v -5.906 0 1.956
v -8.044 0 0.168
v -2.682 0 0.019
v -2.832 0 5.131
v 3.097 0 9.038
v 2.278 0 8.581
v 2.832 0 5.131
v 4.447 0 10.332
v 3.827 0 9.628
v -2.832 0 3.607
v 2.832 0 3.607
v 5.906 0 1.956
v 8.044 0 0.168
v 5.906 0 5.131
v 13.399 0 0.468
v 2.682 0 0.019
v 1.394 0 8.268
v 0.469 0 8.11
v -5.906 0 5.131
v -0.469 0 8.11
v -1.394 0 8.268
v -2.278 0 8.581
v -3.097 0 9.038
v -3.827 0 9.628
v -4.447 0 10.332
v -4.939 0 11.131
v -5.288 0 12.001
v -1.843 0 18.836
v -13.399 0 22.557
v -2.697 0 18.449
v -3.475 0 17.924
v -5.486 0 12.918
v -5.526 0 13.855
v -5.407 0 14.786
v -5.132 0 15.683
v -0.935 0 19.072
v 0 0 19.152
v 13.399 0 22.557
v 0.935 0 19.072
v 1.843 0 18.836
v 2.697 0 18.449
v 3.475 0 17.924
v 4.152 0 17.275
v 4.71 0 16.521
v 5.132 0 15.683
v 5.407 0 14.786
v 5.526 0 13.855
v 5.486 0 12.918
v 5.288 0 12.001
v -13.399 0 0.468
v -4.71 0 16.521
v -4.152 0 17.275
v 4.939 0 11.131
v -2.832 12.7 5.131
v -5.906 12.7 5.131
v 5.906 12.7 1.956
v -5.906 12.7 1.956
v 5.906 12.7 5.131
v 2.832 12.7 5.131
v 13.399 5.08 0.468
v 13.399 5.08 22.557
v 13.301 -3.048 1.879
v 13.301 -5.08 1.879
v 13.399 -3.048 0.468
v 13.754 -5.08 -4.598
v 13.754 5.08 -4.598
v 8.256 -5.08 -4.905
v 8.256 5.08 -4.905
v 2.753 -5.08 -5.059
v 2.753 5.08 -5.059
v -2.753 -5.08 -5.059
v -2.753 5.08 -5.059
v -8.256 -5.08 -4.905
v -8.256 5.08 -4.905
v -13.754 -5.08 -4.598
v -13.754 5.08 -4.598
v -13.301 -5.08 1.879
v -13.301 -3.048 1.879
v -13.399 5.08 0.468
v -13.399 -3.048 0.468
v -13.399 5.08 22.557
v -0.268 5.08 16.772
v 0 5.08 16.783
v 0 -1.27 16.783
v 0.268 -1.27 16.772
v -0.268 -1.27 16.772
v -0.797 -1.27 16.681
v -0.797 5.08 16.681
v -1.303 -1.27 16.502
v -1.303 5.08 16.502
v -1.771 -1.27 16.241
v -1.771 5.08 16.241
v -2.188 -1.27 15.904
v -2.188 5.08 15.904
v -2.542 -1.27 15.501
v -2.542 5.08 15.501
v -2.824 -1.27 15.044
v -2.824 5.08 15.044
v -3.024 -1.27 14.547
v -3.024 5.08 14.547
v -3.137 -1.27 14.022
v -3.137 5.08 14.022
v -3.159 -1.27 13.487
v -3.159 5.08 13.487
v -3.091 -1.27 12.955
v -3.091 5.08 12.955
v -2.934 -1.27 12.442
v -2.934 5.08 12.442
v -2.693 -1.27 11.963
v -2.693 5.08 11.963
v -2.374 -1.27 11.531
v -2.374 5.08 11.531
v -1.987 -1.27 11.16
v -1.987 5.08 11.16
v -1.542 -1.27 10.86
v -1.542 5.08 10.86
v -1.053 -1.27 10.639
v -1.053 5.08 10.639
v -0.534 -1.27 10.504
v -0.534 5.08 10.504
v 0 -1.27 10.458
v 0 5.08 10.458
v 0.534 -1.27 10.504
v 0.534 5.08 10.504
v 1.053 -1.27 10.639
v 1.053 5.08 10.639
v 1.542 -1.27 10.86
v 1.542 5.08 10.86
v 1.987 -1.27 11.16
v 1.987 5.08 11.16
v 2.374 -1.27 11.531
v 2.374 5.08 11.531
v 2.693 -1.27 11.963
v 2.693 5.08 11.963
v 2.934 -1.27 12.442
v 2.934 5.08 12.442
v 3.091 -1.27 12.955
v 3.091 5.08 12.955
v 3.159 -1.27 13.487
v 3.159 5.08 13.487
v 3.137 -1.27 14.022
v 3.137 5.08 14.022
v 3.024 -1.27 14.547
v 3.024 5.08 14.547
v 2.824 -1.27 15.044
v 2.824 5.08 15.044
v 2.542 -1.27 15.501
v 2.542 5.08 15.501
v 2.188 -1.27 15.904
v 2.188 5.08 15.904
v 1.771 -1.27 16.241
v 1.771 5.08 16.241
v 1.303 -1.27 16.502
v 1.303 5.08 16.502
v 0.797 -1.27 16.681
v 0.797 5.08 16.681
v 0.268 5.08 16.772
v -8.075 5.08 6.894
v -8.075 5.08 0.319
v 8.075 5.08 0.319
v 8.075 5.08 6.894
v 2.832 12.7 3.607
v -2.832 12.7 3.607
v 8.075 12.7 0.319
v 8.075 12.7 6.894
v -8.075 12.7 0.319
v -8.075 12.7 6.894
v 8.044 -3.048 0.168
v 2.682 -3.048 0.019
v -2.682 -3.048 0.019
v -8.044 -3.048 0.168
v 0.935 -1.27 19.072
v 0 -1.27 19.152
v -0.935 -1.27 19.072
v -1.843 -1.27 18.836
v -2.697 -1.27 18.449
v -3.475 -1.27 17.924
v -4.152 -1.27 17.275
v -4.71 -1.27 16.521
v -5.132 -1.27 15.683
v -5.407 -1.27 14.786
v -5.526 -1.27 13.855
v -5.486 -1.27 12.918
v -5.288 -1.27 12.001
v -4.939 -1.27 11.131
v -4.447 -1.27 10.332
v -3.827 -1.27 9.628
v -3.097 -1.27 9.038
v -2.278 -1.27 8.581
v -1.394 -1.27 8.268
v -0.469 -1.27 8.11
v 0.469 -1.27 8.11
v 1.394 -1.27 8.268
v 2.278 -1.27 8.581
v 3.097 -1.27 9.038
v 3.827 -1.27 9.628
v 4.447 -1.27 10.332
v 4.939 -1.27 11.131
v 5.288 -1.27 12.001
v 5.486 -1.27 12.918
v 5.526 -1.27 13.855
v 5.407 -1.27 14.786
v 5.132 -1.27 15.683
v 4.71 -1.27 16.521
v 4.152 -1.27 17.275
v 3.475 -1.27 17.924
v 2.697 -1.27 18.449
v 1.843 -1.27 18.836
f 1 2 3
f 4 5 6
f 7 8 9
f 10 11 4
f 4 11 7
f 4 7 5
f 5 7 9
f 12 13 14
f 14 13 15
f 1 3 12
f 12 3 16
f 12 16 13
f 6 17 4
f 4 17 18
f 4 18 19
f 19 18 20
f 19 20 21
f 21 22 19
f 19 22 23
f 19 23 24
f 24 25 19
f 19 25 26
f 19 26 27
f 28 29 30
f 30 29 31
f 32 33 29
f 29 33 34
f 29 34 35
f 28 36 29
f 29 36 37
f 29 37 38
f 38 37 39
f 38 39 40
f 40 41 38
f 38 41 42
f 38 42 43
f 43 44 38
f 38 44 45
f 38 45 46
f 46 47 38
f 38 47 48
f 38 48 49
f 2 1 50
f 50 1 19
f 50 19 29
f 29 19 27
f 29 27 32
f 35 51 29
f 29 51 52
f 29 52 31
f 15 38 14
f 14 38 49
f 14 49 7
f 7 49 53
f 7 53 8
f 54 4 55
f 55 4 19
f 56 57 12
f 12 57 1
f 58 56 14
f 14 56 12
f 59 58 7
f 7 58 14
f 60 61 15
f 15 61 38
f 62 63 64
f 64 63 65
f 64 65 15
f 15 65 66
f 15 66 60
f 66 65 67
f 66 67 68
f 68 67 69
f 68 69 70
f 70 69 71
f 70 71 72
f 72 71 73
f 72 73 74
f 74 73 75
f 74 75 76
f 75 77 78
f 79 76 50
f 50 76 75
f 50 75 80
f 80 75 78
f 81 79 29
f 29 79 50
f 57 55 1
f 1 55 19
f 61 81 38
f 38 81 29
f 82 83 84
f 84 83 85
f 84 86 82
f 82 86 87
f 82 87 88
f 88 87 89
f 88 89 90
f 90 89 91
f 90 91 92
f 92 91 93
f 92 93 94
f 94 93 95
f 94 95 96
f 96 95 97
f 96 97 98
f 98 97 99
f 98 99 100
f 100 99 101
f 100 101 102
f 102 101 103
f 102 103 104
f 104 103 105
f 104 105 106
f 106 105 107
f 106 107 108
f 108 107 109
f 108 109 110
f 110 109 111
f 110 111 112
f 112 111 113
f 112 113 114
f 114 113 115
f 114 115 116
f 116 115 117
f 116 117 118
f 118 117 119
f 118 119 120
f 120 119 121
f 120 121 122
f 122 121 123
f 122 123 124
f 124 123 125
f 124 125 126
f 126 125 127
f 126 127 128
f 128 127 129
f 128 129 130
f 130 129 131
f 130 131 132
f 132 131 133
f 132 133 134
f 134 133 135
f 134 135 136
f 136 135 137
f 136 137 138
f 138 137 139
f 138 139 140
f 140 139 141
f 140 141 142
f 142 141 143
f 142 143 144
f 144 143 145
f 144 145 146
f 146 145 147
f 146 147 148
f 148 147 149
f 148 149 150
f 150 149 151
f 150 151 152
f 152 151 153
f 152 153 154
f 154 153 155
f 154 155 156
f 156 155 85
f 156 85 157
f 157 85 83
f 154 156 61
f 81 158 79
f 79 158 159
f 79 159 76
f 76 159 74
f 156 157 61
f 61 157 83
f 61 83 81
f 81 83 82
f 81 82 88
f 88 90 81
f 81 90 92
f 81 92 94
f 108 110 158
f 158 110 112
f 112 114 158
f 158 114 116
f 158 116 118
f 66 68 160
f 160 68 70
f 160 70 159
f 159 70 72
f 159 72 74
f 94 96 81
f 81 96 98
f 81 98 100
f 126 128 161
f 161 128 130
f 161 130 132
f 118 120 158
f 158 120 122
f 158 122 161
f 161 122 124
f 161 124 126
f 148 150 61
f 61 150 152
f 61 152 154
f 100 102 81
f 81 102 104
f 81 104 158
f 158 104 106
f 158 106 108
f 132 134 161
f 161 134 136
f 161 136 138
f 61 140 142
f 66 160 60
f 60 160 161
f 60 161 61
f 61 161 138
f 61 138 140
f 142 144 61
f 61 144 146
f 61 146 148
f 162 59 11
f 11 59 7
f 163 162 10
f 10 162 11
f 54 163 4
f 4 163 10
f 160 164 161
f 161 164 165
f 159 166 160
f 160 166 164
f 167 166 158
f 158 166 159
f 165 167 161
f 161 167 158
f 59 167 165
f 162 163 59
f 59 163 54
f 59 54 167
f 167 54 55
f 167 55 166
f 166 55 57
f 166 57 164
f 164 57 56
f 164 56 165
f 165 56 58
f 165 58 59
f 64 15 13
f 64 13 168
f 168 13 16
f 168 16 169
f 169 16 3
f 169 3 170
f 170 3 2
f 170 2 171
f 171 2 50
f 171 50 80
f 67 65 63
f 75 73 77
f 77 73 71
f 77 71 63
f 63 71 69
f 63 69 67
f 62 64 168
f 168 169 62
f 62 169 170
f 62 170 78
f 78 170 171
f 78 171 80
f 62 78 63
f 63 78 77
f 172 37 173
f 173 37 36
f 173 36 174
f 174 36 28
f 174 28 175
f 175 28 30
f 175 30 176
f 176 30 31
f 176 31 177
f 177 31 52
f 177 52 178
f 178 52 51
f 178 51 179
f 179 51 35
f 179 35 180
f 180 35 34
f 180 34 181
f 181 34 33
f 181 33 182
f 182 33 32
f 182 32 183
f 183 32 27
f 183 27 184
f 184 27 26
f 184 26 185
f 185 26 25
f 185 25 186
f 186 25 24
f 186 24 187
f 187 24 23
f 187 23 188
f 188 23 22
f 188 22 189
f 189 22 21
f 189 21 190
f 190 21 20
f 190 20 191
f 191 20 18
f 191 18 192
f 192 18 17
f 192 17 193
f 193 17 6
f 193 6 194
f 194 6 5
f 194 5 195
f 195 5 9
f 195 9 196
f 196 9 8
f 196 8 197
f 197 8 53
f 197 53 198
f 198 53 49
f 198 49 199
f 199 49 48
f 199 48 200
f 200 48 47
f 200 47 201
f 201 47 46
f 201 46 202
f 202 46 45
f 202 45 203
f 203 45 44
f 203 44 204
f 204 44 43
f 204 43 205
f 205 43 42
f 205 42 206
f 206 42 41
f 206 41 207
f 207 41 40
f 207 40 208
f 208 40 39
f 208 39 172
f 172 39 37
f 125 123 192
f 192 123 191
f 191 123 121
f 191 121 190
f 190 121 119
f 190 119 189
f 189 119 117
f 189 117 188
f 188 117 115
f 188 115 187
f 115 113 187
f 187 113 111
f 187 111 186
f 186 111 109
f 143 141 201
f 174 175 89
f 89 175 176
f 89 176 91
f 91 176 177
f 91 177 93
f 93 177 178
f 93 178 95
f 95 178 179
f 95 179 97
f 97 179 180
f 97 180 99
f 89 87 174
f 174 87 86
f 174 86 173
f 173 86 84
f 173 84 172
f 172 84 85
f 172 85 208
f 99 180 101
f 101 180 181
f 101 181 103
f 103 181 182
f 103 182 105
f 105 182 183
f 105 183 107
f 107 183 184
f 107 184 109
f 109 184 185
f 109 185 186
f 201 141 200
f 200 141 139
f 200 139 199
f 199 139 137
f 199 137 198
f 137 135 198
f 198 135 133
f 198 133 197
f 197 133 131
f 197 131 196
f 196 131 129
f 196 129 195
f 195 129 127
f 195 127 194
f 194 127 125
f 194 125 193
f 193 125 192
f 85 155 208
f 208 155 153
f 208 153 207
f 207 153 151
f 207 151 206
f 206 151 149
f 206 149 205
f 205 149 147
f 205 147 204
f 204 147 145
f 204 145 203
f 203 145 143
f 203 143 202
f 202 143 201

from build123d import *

# Parameters (mm, degrees)
SKETCH1_W           = 11.811
SKETCH1_H           = 3.175
SKETCH1_R           = 3.1623
BOSS_EXTRUDE1_DEPTH = 5.08
SKETCH1_3_W         = 16.150142566
SKETCH1_3_H         = 6.574737844
BOSS_EXTRUDE2_DEPTH = 12.7
BOSS_EXTRUDE3_START = -5.08
BOSS_EXTRUDE3_DEPTH = 5.08
BOSS_EXTRUDE5_DEPTH = 2.032
BOSS_EXTRUDE6_START = -1.27
SKETCH1_6_R         = 5.53085
SKETCH1_6_R_2       = 3.1623
BOSS_EXTRUDE6_DEPTH = 1.27


with BuildPart() as part:
    # Sketch1 → Boss-Extrude1 (new body)
    with BuildSketch(Plane(origin=(0, 0, 0), x_dir=(1, 0, 0), z_dir=(0, 1, 0))):
        with BuildLine():
            ThreePointArc((13.753578899, 4.597841674), (0, 5.078127233), (-13.753578899, 4.597841674))
            Line((-13.753578899, 4.597841674), (-13.39934665, -0.467915496))
            Line((-13.39934665, -0.467915496), (-13.39934665, -22.557024998))
            Line((-13.39934665, -22.557024998), (13.39934665, -22.557024998))
            Line((13.39934665, -22.557024998), (13.39934665, -0.467915496))
            Line((13.39934665, -0.467915496), (13.753578899, 4.597841674))
        make_face()
        with Locations((0, -3.5433)):
            Rectangle(SKETCH1_W, SKETCH1_H, mode=Mode.SUBTRACT)
        with Locations((0, -13.62075)):
            Circle(SKETCH1_R, mode=Mode.SUBTRACT)
    extrude(amount=BOSS_EXTRUDE1_DEPTH)

    # Sketch1<3> → Boss-Extrude2 (add)
    with BuildSketch(Plane(origin=(0, 0, 0), x_dir=(1, 0, 0), z_dir=(0, 1, 0))):
        with Locations((0, -3.6068)):
            Rectangle(SKETCH1_3_W, SKETCH1_3_H)
        Polygon((-2.8321, -3.6068), (-2.8321, -5.1308), (-5.9055, -5.1308), (-5.9055, -1.9558), (5.9055, -1.9558), (5.9055, -5.1308), (2.8321, -5.1308), (2.8321, -3.6068), align=None, mode=Mode.SUBTRACT)
    extrude(amount=BOSS_EXTRUDE2_DEPTH)

    # Sketch1<4> → Boss-Extrude3 (add)
    with BuildSketch(Plane(origin=(0, 0, 0), x_dir=(1, 0, 0), z_dir=(0, 1, 0)).offset(BOSS_EXTRUDE3_START)):
        with BuildLine():
            ThreePointArc((13.753578899, 4.597841674), (0, 5.078127233), (-13.753578899, 4.597841674))
            Line((-13.753578899, 4.597841674), (-13.39934665, -0.467915496))
            ThreePointArc((-13.39934665, -0.467915496), (-6.703757073, -0.117014515), (0, 0))
            ThreePointArc((0, 0), (6.703757073, -0.117014515), (13.39934665, -0.467915496))
            Line((13.39934665, -0.467915496), (13.753578899, 4.597841674))
        make_face()
    extrude(amount=BOSS_EXTRUDE3_DEPTH)

    # Sketch2 → Boss-Extrude5 (add)
    with BuildSketch(Plane.XZ.offset(5.08)):
        Polygon((-13.753578899, -4.597841674), (-13.39934665, 0.467915496), (-13.300671129, 1.879041191), (13.300671129, 1.879041191), (13.39934665, 0.467915496), (13.753578899, -4.597841674), align=None)
    extrude(amount=-BOSS_EXTRUDE5_DEPTH)

    # Sketch1<6> → Boss-Extrude6 (add)
    with BuildSketch(Plane(origin=(0, 0, 0), x_dir=(1, 0, 0), z_dir=(0, 1, 0)).offset(BOSS_EXTRUDE6_START)):
        with Locations((0, -13.62075)):
            Circle(SKETCH1_6_R)
        with Locations((0, -13.62075)):
            Circle(SKETCH1_6_R_2, mode=Mode.SUBTRACT)
    extrude(amount=BOSS_EXTRUDE6_DEPTH)


solid = part.part
